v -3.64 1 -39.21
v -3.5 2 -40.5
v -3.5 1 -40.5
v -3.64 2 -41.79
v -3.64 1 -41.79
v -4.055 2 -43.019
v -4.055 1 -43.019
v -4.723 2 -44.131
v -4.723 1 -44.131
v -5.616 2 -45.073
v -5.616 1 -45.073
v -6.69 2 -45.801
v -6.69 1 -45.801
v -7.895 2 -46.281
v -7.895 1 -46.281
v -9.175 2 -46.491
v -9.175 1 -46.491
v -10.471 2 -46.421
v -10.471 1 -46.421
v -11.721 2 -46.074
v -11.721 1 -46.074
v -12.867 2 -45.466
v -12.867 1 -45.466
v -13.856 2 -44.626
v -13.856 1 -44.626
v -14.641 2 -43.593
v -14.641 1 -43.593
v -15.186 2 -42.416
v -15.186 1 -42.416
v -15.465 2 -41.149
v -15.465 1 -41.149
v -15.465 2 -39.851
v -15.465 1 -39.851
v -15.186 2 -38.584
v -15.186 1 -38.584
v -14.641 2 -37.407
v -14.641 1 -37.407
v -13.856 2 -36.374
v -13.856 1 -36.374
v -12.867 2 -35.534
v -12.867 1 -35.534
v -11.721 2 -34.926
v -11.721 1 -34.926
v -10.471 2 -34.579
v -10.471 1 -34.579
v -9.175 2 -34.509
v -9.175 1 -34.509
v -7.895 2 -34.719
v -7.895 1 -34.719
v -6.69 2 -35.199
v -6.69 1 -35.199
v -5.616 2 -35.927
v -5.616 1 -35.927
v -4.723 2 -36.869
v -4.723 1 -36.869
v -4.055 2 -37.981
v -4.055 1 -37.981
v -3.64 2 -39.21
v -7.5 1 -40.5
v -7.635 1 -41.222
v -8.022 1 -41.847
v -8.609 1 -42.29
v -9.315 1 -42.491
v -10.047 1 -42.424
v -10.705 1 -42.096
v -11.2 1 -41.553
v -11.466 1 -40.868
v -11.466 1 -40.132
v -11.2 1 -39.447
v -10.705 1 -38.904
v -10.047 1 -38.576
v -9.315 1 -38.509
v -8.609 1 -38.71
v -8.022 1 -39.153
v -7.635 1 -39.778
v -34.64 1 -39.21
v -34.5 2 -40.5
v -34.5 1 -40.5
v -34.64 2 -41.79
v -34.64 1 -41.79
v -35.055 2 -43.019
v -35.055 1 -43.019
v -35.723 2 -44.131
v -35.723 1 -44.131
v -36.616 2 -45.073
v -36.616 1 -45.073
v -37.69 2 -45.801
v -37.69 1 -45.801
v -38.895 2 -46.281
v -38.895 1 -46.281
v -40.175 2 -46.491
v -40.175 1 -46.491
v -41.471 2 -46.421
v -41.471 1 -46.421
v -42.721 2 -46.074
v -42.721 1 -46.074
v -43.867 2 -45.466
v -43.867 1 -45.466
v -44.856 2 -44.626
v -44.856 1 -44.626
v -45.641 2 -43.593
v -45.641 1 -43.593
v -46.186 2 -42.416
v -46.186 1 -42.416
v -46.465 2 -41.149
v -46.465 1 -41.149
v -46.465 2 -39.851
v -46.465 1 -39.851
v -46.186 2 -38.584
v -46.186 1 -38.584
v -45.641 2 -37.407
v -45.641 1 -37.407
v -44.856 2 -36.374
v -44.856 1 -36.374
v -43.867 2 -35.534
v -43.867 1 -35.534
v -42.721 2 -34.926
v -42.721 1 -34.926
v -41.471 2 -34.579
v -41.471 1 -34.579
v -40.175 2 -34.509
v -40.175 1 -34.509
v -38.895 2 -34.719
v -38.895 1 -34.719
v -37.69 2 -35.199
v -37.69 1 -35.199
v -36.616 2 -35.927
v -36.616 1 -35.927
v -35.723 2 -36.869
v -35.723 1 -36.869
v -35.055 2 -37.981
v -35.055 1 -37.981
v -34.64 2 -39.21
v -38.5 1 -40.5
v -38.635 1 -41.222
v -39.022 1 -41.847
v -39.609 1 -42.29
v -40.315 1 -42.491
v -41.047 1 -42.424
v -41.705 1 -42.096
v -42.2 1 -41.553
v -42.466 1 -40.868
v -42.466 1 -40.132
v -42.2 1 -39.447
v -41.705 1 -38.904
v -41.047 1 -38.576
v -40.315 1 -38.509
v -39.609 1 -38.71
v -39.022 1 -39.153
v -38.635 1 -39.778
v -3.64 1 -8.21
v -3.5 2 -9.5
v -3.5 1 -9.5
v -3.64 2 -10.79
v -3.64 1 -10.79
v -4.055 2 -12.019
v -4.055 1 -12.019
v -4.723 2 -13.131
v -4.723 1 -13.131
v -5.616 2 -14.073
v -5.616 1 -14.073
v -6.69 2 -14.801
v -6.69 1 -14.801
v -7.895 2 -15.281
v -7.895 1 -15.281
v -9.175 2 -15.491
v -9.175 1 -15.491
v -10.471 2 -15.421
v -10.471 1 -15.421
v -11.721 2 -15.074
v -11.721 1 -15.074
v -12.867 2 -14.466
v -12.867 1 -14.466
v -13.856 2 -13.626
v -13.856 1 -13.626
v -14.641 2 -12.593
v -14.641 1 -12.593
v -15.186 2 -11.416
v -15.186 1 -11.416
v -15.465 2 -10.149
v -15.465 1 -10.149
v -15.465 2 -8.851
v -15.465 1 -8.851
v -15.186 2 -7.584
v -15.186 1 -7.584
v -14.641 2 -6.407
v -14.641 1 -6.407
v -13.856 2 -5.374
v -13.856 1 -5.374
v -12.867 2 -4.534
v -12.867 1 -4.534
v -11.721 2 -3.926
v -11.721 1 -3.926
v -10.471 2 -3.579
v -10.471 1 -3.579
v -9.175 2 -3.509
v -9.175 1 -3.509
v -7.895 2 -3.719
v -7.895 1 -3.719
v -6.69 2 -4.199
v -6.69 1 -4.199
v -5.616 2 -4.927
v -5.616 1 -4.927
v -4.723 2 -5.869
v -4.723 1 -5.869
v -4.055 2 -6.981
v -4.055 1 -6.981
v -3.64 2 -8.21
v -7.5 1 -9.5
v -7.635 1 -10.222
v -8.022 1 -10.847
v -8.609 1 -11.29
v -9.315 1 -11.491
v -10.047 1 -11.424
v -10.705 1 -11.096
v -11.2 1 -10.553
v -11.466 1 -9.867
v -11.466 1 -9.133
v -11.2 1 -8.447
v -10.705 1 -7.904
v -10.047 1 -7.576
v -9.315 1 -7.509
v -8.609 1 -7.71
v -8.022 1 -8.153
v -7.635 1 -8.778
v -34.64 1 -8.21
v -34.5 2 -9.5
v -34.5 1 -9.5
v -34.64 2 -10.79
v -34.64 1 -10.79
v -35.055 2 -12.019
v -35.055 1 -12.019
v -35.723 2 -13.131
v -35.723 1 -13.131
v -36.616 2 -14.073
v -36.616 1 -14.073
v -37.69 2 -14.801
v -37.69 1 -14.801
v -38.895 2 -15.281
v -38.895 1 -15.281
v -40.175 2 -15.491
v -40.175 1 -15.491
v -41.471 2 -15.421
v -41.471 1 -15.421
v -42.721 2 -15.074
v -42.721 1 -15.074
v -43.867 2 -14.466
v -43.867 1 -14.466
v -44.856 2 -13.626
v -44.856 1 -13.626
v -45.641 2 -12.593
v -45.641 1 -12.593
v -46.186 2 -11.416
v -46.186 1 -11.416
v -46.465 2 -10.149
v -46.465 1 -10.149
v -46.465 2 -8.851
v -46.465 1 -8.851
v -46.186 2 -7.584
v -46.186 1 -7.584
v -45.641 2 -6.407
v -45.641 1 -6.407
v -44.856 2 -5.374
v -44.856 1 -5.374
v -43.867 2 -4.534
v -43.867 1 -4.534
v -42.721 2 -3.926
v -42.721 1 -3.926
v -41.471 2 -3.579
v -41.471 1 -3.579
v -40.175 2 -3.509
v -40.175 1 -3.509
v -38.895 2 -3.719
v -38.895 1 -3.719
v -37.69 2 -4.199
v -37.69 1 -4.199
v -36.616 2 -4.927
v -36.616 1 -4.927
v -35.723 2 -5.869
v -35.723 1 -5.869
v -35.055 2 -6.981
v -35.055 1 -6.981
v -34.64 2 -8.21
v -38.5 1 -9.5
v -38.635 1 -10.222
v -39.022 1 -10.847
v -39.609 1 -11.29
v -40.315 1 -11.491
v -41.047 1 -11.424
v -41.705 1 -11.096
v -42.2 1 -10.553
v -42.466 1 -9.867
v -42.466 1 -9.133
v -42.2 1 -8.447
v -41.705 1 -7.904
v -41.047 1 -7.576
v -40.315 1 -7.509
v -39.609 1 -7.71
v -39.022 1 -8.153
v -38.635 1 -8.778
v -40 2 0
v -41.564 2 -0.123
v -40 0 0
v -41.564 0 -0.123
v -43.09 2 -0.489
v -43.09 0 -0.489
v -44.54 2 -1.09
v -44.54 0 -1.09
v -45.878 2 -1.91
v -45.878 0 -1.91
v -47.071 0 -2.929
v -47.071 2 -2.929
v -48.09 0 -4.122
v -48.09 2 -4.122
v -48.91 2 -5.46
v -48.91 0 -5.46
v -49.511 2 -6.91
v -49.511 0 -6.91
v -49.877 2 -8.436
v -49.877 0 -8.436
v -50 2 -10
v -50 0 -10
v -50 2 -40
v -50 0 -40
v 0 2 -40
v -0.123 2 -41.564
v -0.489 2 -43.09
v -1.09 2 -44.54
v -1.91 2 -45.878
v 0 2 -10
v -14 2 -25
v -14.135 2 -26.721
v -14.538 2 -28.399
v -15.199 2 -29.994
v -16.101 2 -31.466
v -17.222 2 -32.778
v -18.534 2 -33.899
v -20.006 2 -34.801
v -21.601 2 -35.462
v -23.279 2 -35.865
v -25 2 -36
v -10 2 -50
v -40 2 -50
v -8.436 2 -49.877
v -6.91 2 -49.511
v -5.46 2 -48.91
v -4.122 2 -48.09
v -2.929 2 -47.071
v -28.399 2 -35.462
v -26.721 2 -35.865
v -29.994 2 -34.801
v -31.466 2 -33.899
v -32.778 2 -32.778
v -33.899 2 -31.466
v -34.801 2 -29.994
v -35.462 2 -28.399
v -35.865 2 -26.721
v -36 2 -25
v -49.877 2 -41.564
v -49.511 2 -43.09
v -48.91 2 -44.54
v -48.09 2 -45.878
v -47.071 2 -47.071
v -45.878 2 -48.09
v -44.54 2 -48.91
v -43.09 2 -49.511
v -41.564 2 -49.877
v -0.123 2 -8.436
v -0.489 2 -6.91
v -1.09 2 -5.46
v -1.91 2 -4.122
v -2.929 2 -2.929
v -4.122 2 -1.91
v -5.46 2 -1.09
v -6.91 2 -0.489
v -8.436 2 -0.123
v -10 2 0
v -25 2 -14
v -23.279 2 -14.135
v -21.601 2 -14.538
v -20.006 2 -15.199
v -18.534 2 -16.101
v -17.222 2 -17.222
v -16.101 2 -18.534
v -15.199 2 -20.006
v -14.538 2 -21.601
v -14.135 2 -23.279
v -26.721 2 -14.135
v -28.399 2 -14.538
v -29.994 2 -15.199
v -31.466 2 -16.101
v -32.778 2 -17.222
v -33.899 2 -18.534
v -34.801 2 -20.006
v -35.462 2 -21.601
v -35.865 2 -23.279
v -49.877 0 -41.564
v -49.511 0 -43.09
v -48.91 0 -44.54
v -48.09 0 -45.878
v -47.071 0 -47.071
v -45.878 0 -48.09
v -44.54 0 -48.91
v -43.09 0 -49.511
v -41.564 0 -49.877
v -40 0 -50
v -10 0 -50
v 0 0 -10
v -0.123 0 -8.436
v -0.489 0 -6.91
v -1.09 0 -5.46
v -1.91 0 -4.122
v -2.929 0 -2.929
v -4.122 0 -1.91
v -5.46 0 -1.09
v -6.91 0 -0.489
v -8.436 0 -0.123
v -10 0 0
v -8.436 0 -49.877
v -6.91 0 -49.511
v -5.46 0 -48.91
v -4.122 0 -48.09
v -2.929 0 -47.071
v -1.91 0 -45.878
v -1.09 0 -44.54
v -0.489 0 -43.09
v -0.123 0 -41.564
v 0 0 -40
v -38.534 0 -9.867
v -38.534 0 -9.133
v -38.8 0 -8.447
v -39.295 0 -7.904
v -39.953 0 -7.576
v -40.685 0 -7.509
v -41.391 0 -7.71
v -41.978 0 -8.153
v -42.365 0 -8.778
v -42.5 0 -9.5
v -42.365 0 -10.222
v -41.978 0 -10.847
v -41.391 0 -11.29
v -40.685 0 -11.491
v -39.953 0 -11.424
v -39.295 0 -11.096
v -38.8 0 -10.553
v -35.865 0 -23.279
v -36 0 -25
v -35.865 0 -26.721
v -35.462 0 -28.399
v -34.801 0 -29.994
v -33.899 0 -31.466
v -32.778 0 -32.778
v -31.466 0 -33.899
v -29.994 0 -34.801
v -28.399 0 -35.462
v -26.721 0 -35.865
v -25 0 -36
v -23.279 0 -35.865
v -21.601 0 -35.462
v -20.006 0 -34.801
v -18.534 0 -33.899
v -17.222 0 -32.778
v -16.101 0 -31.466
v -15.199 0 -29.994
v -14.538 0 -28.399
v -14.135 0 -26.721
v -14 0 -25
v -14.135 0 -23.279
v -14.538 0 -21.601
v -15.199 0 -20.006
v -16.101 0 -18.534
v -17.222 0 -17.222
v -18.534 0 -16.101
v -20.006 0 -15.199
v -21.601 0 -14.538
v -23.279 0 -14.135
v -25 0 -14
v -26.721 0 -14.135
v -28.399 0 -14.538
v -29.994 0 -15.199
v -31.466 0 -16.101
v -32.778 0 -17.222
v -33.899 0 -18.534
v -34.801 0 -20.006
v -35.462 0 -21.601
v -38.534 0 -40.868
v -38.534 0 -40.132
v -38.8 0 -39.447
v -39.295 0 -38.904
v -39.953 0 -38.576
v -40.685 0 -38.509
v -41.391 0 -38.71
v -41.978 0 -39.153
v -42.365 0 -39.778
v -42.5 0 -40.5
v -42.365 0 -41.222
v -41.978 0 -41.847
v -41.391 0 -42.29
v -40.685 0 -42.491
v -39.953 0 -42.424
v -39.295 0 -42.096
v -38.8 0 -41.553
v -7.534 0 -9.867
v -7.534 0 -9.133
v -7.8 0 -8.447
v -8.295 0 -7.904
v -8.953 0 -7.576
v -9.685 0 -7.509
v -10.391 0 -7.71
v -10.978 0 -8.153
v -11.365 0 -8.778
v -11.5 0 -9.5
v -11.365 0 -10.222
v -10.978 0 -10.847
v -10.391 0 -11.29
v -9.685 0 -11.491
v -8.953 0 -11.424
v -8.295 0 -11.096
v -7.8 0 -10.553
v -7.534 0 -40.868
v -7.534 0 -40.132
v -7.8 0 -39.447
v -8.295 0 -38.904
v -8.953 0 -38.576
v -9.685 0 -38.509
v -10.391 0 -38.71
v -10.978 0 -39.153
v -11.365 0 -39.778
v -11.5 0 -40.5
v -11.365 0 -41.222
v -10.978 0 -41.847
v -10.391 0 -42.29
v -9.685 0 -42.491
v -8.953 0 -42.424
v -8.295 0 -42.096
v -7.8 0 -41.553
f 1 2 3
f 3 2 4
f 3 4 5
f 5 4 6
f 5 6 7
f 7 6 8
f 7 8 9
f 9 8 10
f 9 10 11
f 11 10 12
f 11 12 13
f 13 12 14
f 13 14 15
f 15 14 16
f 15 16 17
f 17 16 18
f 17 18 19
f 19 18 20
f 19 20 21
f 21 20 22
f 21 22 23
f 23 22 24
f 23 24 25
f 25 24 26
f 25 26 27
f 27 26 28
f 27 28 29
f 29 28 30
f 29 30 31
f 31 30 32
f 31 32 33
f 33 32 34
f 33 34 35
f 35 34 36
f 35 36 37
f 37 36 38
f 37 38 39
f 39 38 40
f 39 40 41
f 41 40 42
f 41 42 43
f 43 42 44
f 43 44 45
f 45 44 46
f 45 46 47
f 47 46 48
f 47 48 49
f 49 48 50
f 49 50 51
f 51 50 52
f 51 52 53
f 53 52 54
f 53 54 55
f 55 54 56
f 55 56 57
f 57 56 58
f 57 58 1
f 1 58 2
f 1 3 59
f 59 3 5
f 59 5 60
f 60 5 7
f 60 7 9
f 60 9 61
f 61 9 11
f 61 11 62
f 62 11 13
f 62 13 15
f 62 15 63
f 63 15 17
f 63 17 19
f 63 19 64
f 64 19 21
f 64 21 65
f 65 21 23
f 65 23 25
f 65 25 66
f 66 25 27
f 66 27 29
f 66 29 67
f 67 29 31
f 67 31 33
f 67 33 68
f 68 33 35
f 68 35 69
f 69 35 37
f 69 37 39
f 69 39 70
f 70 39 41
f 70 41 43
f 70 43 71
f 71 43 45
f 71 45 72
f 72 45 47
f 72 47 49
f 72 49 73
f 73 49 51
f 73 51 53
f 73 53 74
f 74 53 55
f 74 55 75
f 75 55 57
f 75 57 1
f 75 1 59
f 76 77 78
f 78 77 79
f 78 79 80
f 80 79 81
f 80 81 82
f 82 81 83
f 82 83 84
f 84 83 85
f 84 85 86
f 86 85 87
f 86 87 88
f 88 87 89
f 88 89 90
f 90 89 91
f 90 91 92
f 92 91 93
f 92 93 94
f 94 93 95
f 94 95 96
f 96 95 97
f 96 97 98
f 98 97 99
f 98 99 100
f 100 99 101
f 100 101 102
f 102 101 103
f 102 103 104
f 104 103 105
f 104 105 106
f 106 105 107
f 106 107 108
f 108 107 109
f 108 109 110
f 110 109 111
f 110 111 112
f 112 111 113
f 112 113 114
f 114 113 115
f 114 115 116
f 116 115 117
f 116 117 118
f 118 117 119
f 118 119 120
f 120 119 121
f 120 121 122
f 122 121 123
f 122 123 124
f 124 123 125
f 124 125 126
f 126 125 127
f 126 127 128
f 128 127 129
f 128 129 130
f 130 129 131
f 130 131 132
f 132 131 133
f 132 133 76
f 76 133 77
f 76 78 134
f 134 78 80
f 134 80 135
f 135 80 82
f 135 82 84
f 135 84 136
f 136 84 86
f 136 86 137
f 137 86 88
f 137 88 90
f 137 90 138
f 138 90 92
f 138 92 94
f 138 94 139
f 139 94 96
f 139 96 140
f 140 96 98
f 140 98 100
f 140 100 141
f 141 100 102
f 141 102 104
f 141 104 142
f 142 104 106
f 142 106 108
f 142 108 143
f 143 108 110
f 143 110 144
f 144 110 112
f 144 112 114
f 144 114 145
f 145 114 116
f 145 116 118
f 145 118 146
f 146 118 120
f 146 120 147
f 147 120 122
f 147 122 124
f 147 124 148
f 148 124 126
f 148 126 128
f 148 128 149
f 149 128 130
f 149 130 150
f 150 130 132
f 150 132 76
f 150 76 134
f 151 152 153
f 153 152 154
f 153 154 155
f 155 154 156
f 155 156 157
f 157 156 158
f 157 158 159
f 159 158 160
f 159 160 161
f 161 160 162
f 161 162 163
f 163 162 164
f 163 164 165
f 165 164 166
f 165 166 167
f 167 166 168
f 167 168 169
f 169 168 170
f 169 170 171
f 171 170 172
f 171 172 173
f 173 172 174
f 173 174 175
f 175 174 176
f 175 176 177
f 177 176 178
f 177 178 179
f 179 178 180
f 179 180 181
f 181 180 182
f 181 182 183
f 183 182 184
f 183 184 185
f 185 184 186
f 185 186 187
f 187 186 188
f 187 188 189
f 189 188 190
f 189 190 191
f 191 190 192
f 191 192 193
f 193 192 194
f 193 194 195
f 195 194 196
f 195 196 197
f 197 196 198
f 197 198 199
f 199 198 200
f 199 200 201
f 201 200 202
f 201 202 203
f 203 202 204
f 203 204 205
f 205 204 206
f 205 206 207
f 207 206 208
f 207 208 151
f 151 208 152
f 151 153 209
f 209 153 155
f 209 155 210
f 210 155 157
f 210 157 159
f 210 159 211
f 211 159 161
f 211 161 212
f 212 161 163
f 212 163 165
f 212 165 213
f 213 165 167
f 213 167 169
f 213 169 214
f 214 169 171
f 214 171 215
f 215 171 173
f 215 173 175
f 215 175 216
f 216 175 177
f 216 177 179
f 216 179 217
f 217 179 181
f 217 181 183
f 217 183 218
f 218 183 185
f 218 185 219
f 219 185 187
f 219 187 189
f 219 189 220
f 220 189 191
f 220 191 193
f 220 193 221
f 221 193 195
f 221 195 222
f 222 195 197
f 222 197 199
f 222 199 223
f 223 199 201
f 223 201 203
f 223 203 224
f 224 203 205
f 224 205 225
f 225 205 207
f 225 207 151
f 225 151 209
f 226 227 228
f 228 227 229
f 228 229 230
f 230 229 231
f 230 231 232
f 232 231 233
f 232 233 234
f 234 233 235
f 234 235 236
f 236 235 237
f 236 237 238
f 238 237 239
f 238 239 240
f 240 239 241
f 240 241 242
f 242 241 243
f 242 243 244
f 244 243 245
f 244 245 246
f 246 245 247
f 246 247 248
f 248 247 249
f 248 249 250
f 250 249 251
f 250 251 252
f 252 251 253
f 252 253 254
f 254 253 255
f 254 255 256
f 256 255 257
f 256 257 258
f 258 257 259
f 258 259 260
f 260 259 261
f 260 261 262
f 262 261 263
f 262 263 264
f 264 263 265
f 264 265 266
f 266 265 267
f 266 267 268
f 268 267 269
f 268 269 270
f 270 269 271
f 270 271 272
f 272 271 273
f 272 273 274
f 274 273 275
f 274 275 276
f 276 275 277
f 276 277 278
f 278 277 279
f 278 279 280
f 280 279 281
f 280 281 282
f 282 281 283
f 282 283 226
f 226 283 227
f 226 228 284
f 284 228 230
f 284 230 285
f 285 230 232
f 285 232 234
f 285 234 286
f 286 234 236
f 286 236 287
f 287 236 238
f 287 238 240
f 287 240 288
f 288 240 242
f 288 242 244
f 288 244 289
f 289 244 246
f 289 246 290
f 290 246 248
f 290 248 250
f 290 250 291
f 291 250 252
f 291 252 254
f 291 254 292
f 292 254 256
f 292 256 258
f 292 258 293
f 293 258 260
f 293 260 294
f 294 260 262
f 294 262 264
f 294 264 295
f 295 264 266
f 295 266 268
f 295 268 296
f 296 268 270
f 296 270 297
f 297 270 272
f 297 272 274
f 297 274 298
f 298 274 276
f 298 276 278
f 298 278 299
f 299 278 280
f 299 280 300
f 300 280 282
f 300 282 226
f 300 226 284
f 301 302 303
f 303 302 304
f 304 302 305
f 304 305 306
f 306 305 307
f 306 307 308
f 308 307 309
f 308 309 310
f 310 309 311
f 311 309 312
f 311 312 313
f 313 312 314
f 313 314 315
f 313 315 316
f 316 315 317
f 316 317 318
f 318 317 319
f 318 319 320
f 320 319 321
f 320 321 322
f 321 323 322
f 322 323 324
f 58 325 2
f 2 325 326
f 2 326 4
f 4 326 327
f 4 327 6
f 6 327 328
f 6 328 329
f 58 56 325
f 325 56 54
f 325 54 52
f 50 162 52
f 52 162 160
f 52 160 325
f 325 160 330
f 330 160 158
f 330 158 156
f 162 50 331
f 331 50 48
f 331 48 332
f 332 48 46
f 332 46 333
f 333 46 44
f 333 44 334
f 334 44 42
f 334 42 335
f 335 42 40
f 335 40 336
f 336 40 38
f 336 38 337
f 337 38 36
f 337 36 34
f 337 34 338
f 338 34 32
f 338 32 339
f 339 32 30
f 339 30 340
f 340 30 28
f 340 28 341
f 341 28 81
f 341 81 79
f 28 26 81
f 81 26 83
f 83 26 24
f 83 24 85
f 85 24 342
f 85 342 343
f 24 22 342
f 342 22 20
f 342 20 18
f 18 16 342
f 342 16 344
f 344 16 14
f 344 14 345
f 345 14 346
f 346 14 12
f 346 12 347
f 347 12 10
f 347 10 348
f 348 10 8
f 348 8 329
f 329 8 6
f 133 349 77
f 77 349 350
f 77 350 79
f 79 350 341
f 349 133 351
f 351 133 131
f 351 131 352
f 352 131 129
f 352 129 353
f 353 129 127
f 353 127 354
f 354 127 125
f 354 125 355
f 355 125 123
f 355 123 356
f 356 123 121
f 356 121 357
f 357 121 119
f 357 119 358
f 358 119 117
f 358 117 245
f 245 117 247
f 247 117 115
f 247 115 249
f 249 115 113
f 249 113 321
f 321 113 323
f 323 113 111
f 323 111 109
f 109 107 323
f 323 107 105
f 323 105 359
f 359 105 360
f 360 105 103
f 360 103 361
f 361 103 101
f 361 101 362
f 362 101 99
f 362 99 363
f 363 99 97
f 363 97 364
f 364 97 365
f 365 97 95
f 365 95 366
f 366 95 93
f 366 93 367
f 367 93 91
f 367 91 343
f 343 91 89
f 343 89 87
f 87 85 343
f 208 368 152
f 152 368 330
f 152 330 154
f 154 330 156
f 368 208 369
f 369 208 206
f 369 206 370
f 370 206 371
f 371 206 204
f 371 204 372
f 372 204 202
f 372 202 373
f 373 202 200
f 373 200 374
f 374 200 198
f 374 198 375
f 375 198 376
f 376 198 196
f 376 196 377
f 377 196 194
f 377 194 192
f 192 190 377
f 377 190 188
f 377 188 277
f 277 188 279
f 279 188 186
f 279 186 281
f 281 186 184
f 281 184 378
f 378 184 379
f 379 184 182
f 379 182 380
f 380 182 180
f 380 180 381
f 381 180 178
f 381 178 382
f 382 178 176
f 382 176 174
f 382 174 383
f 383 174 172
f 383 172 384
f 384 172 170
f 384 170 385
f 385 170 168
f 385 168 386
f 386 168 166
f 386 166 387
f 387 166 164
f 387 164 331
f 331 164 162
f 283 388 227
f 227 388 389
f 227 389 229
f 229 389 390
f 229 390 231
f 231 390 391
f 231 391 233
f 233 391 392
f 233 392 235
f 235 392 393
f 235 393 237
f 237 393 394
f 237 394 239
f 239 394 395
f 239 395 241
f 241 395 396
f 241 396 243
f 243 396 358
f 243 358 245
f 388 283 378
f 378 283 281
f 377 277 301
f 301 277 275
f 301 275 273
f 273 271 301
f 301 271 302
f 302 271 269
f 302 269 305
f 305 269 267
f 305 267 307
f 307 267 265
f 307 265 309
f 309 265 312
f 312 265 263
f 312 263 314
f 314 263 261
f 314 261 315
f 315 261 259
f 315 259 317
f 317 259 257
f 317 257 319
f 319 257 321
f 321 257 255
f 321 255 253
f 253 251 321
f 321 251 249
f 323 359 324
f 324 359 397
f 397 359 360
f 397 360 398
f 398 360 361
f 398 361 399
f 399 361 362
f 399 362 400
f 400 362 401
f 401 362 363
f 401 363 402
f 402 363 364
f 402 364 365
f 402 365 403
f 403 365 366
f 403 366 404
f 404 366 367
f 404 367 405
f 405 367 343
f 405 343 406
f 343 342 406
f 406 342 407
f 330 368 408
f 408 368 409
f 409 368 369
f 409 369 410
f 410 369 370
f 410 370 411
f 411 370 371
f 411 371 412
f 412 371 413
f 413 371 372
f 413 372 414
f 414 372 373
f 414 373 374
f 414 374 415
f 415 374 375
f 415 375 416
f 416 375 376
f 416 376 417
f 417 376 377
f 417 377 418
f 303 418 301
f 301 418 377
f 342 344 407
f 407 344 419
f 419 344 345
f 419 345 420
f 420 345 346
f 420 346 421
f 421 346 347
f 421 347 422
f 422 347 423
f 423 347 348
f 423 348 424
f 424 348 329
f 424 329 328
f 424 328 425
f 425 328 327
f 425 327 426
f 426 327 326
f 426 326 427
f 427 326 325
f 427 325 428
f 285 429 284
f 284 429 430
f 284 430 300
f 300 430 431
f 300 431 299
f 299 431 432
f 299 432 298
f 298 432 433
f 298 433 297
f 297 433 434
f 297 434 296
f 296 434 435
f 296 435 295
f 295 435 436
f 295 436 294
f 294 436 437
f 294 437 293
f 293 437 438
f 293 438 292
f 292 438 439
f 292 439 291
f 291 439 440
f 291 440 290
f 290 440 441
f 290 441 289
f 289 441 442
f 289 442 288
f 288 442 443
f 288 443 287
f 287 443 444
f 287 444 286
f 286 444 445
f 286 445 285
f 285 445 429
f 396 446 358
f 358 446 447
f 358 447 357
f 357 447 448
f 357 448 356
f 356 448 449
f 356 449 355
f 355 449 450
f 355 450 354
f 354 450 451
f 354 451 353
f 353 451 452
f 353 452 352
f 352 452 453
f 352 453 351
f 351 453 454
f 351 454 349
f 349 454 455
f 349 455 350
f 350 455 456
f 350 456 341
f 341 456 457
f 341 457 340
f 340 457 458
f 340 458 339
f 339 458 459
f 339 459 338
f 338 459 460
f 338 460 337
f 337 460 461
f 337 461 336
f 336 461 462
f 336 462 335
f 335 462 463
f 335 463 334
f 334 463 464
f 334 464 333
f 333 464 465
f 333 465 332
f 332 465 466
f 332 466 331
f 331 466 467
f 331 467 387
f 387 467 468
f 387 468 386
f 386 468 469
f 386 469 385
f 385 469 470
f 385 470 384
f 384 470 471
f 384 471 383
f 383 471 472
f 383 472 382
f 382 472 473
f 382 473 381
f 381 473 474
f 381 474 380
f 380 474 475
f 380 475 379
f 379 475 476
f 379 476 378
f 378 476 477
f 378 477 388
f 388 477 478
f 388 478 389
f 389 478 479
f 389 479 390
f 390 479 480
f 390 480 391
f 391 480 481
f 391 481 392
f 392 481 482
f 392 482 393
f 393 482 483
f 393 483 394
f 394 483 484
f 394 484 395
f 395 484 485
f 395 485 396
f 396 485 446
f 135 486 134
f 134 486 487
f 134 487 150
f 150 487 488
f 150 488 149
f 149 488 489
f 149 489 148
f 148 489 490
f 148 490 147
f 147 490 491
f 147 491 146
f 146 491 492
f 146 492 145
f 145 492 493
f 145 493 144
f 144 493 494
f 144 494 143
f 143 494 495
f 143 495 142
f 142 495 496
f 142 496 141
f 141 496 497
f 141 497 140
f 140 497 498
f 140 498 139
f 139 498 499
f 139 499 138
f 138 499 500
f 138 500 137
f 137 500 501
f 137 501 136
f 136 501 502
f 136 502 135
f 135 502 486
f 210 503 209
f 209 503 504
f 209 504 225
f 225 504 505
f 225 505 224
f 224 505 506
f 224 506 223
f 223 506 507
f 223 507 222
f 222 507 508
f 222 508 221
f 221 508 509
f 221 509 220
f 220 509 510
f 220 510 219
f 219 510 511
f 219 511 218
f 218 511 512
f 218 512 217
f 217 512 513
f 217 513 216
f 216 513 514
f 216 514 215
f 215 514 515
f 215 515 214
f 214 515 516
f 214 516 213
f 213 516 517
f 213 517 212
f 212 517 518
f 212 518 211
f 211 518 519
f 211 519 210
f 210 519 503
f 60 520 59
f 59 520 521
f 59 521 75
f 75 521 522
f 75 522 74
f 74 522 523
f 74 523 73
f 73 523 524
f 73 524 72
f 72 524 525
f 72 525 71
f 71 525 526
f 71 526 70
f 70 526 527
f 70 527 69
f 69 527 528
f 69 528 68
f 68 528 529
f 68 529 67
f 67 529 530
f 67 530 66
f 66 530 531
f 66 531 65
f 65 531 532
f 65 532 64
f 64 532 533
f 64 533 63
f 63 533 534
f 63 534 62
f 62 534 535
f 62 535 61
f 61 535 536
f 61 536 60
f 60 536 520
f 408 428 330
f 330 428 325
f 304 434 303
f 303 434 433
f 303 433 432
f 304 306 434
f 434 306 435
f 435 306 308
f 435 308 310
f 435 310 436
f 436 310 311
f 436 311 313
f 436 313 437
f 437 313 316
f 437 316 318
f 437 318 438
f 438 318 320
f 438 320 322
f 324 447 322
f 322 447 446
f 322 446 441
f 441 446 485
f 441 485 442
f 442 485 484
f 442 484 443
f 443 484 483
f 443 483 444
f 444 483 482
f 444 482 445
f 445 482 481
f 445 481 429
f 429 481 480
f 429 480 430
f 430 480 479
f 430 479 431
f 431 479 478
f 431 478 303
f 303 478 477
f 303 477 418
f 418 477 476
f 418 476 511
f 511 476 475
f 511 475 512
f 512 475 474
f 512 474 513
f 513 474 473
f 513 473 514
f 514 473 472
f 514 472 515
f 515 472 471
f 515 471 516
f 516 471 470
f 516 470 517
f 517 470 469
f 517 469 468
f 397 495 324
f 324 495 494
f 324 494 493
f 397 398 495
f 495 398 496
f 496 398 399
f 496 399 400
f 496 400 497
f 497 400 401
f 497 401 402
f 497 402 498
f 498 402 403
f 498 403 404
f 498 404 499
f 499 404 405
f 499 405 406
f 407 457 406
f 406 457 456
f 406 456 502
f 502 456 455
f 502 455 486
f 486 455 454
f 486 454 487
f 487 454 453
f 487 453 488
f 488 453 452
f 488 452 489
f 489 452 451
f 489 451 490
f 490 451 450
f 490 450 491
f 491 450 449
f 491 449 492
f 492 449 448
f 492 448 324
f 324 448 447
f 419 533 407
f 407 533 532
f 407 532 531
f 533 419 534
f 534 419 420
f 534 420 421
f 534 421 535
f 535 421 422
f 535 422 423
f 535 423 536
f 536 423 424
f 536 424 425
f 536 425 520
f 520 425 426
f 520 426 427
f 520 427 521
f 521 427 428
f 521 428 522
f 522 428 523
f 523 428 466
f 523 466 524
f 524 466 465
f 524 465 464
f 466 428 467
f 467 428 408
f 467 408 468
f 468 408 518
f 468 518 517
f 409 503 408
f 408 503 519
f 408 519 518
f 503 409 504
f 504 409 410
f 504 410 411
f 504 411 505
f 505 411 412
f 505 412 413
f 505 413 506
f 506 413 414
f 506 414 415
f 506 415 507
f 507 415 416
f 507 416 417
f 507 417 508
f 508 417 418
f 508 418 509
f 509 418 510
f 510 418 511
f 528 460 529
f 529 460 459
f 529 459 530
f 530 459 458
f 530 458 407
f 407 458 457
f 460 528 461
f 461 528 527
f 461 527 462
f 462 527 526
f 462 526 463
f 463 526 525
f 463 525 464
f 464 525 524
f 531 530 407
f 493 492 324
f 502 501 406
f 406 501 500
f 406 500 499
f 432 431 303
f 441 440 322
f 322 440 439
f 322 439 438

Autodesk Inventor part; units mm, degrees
ref_plane "YZ Plane" through (0, 0, 0) normal (1, 0, 0) x (0, 1, 0)
ref_plane "XZ Plane" through (0, 0, 0) normal (0, 1, 0) x (-1, 0, 0)
ref_plane "XY Plane" through (0, 0, 0) normal (0, 0, 1) x (1, 0, 0)
sketch "Sketch1" plane through (0, 0, 0) normal (0, 1, 0) x (-1, 0, 0)
  line L0 (0, 0) -> (50, 0)
  line L1 (50, 0) -> (50, -50)
  line L2 (50, -50) -> (0, -50)
  line L3 (0, -50) -> (0, 0)
  circle A0 centre (40.5, -9.5) radius 2
  circle A1 centre (25, -25) radius 11
  circle A2 centre (40.5, -40.5) radius 2
  circle A3 centre (9.5, -9.5) radius 2
  circle A4 centre (9.5, -40.5) radius 2
  dimension "d0" = 50
  dimension "d1" = 50
  dimension "d2" = 4
  dimension "d3" = 9.5
  dimension "d4" = 9.5
  dimension "d5" = 22
  dimension "d6" = 25
  dimension "d7" = 25
  dimension "d10" = 31
  dimension "d13" = 31
extrude "Extrusion1" add sketch "Sketch1" along normal blind 2
fillet "Fillet1" radius 10 4 edges at (0, 1, -50) (0, 1, 0) (-50, 1, -50) (-50, 1, 0)
sketch "Sketch2" plane through (0, 2, 0) normal (0, 1, 0) x (1, 0, 0)
  circle A0 centre (-40.5, 9.5) radius 2 projected
  circle A1 centre (-40.5, 9.5) radius 6
  point P0 (0, 0)
  dimension "d19" = 12
extrude "Extrusion2" cut sketch "Sketch2" against normal blind 1
pattern_linear "Rectangular Pattern1" count 2 spacing 31 along (1, 0, 0) count 2 spacing 31 along (0, 0, -1) of "Extrusion2"
properties part number "NEMA17_FacePlate"
